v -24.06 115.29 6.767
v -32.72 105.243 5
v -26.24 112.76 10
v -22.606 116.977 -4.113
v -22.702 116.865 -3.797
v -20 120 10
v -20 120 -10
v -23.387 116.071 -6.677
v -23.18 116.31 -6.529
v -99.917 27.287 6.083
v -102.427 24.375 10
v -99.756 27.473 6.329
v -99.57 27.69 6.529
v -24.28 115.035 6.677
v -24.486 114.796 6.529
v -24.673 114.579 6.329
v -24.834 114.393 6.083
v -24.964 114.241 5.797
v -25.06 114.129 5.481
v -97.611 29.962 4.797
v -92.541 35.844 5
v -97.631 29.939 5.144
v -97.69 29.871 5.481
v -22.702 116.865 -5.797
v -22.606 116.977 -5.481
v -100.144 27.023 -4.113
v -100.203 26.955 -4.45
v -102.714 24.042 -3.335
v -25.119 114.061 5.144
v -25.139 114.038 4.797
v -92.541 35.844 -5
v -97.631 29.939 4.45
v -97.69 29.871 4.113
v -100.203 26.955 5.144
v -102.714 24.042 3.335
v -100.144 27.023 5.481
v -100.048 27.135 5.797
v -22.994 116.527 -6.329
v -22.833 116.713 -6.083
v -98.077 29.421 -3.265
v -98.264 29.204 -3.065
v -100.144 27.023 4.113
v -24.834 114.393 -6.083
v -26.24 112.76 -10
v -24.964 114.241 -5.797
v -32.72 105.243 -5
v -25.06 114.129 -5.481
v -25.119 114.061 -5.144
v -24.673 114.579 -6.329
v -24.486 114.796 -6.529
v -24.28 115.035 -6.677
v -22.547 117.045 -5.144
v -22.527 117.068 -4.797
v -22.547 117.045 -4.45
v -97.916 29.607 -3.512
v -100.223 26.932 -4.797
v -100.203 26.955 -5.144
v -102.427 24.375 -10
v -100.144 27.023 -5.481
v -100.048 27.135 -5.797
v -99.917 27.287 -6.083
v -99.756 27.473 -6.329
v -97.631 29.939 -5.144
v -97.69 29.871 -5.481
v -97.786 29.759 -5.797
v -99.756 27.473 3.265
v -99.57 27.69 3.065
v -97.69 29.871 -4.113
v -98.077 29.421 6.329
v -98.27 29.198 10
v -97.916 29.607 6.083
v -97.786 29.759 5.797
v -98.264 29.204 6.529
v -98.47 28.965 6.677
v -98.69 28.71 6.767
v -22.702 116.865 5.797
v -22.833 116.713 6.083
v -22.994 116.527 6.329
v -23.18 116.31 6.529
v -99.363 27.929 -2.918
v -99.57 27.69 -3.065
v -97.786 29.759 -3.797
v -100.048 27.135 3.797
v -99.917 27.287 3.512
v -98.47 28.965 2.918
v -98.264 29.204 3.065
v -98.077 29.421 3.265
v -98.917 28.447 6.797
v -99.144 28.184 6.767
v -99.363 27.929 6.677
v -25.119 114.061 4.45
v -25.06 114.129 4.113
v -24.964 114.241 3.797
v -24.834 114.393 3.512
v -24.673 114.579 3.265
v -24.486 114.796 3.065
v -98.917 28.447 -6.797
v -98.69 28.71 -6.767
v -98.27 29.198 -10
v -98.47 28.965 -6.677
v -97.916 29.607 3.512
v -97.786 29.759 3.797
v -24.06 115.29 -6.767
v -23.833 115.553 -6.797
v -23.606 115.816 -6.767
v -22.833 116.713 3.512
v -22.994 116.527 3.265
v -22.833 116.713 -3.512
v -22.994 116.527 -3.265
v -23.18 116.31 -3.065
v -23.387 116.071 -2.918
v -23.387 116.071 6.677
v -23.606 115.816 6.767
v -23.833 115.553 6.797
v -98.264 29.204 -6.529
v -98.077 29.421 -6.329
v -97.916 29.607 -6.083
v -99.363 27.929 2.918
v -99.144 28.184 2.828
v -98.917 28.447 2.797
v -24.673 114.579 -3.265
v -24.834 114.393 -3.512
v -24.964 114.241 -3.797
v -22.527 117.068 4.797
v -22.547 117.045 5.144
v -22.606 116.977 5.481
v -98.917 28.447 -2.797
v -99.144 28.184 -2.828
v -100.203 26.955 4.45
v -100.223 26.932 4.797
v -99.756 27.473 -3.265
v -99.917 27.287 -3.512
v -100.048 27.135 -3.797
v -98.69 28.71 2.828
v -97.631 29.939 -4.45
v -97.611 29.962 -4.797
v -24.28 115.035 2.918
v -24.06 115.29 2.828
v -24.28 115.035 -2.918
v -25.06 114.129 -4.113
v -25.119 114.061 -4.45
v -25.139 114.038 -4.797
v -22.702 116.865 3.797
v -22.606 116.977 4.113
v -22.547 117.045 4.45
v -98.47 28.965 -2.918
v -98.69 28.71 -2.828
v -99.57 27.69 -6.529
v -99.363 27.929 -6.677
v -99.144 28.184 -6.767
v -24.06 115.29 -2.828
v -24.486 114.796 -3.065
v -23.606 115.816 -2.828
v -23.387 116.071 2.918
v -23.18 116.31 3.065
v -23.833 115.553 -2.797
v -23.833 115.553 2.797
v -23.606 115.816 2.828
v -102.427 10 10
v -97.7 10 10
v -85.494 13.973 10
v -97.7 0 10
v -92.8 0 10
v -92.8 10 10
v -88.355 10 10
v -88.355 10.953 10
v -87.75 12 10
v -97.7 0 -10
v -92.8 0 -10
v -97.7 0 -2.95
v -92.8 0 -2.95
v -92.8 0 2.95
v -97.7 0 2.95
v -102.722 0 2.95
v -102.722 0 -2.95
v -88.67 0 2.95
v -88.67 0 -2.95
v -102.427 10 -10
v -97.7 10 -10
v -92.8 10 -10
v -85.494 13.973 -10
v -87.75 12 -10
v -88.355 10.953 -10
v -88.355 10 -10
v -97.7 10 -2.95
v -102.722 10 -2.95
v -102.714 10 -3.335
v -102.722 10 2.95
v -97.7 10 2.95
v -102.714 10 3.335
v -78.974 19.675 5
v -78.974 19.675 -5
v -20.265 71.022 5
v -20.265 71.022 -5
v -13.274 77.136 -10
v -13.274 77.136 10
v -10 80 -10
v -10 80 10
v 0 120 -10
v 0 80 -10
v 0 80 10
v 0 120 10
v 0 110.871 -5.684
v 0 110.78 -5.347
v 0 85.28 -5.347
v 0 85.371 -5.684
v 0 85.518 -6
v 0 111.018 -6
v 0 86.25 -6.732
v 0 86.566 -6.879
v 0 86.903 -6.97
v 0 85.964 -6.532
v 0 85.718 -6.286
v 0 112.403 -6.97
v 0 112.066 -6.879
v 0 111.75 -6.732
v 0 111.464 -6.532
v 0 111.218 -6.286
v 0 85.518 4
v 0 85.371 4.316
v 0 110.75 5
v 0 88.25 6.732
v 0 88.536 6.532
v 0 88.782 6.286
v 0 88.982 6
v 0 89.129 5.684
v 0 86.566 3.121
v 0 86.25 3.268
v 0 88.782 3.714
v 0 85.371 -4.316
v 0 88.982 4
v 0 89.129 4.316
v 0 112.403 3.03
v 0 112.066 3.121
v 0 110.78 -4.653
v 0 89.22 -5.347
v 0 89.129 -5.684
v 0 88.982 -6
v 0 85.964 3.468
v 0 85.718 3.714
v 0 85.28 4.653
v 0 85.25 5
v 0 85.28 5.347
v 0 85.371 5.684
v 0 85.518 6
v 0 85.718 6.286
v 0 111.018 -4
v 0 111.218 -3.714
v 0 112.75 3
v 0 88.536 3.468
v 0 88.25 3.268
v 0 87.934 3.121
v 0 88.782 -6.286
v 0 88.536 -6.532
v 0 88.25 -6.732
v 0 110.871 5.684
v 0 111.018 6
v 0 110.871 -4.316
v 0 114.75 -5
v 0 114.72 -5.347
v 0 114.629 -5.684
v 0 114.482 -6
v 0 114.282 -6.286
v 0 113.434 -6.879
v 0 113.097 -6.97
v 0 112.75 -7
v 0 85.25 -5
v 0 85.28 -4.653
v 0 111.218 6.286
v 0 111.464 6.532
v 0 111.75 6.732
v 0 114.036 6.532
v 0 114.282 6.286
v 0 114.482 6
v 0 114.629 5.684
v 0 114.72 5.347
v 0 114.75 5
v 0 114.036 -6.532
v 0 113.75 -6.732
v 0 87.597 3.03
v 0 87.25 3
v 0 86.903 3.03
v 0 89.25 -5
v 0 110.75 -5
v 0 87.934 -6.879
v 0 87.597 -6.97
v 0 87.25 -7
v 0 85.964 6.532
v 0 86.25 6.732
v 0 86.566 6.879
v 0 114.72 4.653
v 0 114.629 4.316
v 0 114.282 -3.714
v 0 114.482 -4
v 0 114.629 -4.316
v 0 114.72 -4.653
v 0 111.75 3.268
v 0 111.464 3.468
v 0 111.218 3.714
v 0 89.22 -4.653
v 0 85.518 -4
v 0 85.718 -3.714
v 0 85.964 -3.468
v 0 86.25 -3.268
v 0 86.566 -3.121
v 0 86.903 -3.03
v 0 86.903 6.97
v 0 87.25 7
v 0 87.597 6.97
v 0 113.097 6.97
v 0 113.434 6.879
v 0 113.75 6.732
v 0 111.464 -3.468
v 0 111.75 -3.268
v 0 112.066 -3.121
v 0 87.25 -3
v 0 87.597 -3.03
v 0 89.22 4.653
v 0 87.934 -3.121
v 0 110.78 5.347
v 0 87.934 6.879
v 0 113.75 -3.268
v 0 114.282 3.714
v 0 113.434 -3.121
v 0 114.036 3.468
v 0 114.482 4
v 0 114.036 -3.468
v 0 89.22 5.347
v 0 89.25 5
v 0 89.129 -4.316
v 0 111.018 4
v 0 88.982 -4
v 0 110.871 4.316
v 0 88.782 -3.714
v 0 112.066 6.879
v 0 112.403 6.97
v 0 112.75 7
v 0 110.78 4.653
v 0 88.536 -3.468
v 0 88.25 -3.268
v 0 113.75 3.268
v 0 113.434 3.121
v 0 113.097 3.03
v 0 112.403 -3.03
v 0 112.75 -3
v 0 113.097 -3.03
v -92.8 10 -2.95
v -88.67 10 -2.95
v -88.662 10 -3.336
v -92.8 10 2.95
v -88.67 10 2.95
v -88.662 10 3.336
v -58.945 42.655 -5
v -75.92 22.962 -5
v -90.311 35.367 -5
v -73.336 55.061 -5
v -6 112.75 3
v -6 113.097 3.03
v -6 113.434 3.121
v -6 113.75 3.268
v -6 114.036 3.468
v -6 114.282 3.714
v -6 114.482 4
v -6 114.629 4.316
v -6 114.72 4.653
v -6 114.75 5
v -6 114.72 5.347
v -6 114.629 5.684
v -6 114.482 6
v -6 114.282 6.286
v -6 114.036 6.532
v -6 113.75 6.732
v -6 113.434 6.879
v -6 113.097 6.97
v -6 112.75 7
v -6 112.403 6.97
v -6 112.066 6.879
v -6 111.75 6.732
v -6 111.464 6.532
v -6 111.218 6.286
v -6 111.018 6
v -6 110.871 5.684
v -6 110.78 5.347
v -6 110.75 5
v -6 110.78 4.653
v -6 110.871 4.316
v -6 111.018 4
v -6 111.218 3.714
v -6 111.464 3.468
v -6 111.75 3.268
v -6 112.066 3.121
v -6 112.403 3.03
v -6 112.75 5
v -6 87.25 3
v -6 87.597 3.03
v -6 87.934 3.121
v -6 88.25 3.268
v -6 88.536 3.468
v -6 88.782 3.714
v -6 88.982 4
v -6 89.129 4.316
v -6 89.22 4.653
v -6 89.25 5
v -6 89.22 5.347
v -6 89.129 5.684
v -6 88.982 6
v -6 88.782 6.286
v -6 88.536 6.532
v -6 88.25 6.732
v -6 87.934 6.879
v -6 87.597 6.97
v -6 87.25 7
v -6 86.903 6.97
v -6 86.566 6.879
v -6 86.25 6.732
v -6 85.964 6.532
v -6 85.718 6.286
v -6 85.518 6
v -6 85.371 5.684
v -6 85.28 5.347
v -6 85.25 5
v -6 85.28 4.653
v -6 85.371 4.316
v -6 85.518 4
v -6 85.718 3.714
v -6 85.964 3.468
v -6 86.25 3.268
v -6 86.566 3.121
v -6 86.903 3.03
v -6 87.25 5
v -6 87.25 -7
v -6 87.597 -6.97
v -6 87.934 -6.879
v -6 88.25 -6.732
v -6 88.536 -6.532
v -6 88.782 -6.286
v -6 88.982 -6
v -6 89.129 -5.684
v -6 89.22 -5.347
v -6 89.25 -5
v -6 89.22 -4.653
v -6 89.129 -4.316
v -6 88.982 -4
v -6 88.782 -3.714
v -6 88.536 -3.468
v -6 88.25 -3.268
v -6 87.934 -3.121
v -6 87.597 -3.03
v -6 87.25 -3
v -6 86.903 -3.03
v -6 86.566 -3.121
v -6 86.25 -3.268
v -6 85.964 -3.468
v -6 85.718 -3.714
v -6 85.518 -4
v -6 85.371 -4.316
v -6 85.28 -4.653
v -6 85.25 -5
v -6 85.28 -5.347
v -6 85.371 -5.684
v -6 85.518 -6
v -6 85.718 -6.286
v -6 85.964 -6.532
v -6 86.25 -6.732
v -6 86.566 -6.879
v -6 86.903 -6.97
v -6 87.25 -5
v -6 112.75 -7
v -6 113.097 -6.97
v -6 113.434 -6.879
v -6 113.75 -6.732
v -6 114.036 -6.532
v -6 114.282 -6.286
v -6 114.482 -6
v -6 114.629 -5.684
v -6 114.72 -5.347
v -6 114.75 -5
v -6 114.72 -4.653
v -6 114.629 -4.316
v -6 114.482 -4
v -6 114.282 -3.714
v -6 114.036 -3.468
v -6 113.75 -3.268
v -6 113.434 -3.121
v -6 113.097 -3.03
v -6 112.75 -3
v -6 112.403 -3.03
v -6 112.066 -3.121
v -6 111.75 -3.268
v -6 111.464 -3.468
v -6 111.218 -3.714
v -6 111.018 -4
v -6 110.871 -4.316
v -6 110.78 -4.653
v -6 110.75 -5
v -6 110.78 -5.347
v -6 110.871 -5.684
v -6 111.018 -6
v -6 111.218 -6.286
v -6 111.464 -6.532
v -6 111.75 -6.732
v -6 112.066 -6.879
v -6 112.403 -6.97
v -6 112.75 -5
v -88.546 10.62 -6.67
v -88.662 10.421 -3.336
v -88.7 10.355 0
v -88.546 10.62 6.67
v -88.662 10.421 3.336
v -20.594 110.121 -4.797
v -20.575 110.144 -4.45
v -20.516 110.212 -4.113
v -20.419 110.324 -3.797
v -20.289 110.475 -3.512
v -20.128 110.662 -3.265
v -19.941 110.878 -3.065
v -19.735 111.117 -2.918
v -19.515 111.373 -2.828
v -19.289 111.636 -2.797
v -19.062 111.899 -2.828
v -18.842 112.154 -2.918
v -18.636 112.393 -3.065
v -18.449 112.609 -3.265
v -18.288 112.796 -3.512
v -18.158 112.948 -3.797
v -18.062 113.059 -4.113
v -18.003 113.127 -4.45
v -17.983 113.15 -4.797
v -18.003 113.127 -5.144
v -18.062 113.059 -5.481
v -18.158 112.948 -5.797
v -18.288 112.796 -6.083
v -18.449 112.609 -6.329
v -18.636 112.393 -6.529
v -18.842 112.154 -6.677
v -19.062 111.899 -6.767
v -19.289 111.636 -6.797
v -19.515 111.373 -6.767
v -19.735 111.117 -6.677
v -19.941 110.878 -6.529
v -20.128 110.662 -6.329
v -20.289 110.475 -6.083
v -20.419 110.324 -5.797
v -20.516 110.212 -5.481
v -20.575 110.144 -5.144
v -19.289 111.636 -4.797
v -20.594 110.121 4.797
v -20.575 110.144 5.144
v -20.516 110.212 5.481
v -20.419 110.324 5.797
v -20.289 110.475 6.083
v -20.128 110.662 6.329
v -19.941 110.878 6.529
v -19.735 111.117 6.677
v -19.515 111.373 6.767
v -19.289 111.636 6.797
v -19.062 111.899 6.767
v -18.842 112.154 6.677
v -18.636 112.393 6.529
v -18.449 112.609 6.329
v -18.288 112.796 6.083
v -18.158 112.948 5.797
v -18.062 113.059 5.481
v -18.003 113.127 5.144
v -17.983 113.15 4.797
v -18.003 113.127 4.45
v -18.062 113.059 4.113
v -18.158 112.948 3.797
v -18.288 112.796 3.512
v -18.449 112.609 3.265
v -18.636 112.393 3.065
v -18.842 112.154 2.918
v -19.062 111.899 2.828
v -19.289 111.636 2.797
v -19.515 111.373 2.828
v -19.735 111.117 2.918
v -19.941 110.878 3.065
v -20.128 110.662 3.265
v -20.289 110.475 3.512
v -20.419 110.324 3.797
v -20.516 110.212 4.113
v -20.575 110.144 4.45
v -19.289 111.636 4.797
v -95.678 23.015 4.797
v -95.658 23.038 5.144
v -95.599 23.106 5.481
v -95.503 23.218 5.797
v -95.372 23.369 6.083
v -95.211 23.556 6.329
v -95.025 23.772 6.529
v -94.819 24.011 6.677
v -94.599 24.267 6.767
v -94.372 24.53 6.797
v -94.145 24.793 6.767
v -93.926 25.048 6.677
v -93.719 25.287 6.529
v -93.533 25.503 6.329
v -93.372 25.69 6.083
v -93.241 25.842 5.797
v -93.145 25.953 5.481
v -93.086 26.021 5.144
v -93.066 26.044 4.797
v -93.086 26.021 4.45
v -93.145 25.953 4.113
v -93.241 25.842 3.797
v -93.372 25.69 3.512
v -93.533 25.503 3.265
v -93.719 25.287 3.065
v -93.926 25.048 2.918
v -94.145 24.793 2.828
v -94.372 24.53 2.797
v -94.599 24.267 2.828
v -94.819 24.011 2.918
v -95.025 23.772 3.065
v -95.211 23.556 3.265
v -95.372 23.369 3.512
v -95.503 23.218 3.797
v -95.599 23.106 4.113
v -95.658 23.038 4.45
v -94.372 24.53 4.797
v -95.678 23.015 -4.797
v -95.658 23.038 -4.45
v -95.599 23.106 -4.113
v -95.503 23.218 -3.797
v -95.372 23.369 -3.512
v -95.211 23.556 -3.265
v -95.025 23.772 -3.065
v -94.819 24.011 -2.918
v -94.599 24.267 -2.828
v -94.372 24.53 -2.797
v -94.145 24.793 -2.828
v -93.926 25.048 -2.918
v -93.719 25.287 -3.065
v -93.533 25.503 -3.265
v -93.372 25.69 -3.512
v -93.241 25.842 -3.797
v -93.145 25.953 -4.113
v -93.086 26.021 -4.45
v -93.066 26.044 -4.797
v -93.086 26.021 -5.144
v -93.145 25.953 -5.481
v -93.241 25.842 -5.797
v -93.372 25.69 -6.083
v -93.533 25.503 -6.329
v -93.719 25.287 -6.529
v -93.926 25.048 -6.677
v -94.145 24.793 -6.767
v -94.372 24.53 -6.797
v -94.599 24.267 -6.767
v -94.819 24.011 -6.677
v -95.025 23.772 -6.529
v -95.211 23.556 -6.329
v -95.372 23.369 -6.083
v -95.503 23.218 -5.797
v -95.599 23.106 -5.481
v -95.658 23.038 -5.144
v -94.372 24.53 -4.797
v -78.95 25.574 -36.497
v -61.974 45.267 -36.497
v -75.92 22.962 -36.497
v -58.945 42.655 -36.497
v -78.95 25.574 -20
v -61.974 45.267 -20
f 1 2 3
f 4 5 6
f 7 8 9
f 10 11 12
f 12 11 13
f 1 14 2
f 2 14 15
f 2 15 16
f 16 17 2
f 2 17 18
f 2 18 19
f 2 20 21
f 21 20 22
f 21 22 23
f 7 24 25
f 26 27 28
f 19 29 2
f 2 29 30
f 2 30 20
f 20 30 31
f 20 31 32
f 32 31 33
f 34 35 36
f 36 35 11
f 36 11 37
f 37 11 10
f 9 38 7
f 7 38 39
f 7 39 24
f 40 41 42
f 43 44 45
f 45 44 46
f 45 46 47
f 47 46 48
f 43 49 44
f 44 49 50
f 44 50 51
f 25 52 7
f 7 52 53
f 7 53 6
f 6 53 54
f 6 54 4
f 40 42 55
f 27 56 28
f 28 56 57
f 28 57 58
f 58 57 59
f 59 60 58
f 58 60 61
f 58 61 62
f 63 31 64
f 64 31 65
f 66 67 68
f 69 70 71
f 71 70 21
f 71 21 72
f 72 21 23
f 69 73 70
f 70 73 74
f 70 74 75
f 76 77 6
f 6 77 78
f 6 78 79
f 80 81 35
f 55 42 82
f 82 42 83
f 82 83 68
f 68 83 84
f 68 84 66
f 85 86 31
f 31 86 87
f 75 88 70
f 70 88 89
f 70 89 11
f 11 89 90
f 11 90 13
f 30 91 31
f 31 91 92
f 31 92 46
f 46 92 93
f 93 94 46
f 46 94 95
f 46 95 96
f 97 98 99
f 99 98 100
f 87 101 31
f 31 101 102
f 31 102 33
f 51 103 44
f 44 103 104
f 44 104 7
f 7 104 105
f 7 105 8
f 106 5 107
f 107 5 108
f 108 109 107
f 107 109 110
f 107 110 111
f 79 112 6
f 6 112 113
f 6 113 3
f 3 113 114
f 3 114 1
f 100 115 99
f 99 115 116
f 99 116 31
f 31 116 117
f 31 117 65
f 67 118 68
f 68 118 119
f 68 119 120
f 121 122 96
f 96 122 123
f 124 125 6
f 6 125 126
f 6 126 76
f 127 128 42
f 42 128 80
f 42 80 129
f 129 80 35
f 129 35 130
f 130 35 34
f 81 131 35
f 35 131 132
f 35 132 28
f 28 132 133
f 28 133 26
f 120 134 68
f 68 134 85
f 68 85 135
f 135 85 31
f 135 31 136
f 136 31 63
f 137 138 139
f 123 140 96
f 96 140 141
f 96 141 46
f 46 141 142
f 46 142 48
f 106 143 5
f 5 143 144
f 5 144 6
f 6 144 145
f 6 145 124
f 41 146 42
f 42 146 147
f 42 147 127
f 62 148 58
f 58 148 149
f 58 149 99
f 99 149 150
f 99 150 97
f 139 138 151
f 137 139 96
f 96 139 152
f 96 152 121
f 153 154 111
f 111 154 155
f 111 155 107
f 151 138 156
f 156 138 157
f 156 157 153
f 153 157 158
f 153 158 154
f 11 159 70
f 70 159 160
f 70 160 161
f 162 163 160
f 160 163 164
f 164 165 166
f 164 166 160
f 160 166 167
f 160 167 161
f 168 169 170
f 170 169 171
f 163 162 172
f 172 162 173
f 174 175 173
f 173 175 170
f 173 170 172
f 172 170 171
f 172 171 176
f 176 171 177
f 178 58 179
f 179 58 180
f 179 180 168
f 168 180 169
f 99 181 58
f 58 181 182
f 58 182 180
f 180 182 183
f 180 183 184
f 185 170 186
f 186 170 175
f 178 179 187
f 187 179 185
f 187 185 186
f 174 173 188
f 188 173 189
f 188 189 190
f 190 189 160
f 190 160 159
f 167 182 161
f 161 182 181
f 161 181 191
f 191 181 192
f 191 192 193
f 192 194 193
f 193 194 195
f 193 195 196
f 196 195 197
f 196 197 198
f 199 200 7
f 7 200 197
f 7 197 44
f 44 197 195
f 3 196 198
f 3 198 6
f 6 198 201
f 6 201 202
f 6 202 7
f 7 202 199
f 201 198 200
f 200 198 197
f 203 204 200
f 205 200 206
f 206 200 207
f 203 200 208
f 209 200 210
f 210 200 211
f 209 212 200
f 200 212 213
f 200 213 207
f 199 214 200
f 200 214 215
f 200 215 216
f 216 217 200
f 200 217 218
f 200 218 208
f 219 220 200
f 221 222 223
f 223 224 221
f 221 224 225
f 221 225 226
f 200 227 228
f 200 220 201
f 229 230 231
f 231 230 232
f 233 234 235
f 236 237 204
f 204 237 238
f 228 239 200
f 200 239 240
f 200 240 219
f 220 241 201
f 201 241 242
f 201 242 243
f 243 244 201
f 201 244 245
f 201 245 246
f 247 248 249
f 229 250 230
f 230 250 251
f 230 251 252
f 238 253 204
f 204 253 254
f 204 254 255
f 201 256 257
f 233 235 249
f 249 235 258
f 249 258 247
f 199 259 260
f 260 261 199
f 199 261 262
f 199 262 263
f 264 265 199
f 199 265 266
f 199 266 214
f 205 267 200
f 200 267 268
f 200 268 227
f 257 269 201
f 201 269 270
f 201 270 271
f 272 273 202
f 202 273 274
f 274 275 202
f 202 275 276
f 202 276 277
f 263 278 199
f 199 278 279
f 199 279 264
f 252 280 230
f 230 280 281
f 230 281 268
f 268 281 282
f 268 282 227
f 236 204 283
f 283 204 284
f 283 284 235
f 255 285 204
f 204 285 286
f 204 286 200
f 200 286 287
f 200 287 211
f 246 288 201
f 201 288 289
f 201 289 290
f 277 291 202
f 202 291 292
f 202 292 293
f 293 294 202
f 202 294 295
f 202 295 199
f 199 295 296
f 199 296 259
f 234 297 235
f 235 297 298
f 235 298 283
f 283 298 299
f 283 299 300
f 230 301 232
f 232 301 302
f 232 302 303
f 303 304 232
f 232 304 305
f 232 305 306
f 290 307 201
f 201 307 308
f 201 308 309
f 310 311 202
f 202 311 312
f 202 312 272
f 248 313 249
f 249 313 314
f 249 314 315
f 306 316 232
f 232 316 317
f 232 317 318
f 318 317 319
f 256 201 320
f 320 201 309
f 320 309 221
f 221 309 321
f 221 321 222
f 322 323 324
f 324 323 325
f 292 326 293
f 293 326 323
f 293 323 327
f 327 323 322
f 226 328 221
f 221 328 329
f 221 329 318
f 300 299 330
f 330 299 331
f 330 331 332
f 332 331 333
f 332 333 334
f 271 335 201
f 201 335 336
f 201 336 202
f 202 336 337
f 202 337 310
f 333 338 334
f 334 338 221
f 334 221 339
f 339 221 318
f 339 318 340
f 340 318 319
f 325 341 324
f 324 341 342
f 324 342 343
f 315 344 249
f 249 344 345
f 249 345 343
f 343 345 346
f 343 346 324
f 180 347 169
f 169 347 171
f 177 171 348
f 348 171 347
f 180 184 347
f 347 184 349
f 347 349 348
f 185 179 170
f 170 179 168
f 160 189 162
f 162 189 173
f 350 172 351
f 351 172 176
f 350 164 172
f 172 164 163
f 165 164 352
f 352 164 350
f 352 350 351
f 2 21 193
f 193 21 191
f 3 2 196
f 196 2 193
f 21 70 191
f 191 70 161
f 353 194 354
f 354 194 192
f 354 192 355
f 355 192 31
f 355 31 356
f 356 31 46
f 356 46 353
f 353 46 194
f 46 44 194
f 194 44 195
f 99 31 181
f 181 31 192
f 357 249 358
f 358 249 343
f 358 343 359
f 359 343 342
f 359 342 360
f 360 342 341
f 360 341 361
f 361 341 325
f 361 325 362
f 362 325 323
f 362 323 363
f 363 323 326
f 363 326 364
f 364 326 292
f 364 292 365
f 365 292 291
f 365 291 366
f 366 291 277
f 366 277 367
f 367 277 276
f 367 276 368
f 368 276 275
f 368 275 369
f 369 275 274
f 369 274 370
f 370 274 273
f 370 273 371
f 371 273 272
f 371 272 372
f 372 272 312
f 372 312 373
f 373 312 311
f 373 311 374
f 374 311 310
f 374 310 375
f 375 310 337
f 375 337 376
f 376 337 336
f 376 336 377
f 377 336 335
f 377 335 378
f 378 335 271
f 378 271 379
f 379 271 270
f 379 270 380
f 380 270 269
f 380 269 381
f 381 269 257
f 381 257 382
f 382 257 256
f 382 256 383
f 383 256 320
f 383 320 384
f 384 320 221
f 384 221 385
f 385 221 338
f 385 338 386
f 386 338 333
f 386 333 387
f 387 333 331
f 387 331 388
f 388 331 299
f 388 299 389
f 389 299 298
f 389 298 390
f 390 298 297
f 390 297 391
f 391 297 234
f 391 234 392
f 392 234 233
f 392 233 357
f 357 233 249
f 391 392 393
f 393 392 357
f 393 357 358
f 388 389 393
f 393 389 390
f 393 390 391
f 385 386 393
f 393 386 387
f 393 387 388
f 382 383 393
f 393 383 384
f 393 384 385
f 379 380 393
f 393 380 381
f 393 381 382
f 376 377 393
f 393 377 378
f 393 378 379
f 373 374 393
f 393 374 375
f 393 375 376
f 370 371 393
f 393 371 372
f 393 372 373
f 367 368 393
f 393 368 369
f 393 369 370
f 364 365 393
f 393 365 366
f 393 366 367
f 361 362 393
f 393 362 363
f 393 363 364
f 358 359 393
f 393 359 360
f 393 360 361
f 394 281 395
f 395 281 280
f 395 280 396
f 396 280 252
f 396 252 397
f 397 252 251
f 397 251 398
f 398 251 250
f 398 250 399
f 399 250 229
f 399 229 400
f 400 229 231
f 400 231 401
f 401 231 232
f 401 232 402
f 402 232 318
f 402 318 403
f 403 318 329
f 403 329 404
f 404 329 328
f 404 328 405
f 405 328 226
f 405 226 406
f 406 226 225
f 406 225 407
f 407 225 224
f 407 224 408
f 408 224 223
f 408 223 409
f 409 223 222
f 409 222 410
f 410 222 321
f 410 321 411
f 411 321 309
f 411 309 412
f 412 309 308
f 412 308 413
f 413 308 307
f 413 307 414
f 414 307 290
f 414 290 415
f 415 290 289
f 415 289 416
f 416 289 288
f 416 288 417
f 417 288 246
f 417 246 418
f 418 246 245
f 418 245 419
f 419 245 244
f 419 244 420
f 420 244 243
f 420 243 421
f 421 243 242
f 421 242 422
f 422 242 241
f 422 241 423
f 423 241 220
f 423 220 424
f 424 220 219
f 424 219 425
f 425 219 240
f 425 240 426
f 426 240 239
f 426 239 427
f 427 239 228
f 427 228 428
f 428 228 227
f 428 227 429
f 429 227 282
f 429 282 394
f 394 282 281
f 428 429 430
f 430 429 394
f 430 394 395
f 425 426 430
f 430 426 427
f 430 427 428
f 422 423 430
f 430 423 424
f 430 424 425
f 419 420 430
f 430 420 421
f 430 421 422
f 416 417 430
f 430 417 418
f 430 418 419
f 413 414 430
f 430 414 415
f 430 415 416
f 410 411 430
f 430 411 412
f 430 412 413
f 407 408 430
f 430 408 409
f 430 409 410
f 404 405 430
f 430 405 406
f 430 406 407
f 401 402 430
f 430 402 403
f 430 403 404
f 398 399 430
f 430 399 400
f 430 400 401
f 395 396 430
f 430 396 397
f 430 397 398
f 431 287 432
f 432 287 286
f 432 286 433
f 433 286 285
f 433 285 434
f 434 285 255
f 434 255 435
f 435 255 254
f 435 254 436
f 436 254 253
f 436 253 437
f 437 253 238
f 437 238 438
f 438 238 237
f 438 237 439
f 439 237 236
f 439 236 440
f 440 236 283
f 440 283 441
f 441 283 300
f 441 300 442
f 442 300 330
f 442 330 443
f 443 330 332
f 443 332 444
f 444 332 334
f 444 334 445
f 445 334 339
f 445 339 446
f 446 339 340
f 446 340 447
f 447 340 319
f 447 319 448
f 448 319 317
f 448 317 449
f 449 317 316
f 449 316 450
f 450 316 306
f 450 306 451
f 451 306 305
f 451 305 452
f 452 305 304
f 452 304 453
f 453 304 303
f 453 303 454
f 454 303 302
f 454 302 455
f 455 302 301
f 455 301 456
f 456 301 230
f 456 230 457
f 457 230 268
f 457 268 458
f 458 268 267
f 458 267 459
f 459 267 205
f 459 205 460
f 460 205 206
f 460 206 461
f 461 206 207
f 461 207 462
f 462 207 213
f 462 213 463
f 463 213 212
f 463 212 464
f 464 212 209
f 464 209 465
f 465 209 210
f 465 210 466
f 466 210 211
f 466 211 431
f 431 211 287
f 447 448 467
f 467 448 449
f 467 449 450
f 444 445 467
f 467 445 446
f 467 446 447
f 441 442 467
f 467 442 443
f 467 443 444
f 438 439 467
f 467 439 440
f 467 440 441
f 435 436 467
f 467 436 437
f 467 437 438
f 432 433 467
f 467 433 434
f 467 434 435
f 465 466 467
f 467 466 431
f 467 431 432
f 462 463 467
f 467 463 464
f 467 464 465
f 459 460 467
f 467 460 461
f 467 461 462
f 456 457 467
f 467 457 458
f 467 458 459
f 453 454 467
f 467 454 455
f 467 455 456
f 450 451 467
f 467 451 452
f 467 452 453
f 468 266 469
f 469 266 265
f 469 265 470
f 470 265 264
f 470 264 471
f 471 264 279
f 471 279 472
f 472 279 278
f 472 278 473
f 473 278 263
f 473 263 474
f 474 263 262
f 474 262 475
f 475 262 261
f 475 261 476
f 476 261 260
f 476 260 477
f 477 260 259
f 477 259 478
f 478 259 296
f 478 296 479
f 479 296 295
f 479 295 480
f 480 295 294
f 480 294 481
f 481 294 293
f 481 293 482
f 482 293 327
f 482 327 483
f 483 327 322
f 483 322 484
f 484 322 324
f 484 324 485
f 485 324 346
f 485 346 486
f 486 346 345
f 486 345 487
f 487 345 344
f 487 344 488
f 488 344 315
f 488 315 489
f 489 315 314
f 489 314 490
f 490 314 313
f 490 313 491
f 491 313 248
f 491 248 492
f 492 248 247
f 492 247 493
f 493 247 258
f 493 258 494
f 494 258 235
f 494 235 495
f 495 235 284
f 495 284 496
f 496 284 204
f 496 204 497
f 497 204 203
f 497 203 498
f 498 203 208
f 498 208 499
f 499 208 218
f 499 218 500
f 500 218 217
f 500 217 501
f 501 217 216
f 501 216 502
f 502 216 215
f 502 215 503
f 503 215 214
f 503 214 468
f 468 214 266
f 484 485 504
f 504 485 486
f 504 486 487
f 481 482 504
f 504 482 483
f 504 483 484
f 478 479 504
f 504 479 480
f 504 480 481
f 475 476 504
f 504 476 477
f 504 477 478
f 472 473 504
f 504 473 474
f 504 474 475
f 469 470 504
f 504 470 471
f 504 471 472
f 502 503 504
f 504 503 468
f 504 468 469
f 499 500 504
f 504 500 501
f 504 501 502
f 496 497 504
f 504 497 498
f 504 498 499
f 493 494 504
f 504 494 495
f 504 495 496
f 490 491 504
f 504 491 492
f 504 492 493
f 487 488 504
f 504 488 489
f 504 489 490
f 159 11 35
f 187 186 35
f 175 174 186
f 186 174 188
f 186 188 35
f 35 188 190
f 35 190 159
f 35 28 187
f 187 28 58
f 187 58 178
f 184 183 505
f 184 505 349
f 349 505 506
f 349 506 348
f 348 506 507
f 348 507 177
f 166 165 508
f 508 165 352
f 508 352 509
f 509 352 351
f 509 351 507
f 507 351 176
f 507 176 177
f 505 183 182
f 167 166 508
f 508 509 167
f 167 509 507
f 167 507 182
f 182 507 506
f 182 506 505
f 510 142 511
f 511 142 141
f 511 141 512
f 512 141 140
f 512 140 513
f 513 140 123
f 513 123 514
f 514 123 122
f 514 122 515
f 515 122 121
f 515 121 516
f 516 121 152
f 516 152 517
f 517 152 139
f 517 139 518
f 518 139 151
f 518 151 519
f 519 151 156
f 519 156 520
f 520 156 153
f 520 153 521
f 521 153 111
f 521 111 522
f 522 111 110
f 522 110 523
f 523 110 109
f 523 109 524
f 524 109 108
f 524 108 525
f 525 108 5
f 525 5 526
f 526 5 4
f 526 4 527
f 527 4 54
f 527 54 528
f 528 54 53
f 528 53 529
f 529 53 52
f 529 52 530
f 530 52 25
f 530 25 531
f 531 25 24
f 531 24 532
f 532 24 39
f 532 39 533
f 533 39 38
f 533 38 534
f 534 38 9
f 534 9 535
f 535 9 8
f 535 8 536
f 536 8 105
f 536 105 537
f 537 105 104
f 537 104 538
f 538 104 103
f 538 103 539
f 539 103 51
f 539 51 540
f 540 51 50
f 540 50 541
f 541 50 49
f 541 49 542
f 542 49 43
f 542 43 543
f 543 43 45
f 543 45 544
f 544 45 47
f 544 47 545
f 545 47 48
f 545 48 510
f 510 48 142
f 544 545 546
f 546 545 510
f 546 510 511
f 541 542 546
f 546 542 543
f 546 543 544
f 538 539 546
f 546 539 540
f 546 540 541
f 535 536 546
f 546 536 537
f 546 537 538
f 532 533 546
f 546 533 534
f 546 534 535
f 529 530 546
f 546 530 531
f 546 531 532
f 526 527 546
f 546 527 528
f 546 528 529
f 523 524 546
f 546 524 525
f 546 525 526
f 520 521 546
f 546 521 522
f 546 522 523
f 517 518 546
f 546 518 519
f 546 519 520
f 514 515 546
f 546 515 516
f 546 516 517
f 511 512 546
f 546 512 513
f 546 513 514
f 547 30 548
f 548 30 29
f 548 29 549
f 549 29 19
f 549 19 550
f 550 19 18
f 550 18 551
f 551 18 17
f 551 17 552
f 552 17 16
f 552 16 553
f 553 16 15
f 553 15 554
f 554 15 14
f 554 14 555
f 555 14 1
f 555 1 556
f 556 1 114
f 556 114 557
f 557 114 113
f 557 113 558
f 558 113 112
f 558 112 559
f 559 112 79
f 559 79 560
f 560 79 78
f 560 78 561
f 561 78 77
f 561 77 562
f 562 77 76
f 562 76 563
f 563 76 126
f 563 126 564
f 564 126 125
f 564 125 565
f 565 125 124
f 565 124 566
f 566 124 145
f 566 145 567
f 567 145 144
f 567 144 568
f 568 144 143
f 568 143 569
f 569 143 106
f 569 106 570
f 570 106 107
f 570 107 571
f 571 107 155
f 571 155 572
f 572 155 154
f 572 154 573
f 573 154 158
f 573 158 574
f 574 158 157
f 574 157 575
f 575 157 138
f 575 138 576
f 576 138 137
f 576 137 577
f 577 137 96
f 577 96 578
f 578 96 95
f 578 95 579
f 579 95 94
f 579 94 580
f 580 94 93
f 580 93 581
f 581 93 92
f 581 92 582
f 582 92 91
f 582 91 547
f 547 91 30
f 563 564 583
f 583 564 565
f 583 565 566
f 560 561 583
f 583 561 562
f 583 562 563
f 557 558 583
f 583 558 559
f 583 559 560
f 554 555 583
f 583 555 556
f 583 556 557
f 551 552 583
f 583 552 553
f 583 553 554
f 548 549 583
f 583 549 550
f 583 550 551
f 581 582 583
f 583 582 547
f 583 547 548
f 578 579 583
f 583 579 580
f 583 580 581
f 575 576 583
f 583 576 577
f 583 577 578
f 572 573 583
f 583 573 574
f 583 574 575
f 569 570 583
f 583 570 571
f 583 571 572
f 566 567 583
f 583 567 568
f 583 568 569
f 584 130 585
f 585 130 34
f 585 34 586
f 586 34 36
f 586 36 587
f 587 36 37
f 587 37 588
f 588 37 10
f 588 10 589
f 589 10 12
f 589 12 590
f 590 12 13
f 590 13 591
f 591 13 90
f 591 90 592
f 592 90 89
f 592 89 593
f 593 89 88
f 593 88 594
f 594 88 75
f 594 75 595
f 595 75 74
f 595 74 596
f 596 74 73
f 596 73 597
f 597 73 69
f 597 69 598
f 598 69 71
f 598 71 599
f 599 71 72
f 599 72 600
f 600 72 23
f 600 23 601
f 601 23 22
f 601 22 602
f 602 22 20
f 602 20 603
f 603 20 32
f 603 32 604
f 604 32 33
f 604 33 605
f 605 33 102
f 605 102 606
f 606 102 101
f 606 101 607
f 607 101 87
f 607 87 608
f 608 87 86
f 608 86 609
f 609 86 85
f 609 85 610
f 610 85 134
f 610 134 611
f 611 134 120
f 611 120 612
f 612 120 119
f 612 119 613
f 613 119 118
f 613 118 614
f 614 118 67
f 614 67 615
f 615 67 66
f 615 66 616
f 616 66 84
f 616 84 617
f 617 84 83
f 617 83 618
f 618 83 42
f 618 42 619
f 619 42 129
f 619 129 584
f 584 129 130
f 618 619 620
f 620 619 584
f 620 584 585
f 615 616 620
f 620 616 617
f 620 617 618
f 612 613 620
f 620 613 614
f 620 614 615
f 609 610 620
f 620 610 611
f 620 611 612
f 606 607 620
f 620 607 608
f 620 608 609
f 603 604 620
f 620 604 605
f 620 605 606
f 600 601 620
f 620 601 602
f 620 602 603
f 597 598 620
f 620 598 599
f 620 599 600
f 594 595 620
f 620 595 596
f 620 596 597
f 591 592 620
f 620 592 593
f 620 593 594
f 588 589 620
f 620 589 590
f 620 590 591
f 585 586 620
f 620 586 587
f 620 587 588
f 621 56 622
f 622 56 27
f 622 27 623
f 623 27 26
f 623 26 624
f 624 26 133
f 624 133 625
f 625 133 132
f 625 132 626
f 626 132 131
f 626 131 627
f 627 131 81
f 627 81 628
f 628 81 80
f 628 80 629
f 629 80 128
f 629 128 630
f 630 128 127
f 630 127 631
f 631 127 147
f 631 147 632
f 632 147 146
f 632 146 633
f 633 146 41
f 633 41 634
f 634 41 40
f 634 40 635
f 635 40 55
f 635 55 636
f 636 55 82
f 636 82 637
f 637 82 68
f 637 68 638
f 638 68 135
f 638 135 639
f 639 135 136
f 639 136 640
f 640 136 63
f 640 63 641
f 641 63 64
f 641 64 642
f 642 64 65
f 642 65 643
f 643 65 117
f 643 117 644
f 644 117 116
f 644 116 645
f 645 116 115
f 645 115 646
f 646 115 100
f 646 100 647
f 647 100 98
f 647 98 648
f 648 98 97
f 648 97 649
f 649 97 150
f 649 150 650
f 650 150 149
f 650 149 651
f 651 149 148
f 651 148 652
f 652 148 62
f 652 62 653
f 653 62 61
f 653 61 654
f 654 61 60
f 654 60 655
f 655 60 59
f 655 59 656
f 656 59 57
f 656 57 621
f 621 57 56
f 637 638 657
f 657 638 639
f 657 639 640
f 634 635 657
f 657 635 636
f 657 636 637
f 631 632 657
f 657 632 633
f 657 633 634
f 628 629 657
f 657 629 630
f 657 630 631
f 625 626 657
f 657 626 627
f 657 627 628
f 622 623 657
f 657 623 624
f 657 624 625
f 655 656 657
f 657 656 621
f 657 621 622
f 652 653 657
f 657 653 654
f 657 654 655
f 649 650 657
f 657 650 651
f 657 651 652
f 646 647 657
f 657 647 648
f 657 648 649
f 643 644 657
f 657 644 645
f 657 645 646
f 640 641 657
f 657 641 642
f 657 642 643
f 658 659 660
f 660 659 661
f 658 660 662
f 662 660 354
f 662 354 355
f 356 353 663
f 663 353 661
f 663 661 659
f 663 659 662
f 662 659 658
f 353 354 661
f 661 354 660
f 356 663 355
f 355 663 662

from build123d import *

# Parameters (mm, degrees)
BOSS_EXTRUDE1_DEPTH        = 10
SKETCH2_W                  = 5.05
SKETCH2_H                  = 7.05
CUT_EXTRUDE6_DEPTH         = 10
CUT_EXTRUDE7_DEPTH         = 5
CHAMFER2_SIZE              = 5.196152423
CHAMFER2_SIZE_2            = 9
CHAMFER2_OF_MIRROR4_SIZE   = 5.196152423
CHAMFER2_OF_MIRROR4_SIZE_2 = 9
SKETCH5_R                  = 2
CUT_EXTRUDE5_DEPTH         = 6
CUT_EXTRUDE8_START         = -120
CUT_EXTRUDE8_DEPTH         = 24.374622763
SKETCH8_R                  = 144.95
CUT_EXTRUDE9_DEPTH         = 12
BOSS_EXTRUDE2_DEPTH        = 20
SKETCH12_R                 = 2
CUT_EXTRUDE10_DEPTH        = 6
BOSS_EXTRUDE3_START        = -21
SKETCH13_W                 = 31.497171345
SKETCH13_H                 = 26
BOSS_EXTRUDE3_DEPTH        = 4
CHAMFER3_SIZE              = 15


# Read off the part's stored shape, not the designer's step: Cut-Extrude8
with BuildPart() as part:
    # Sketch1 → Boss-Extrude1 (new, symmetric)
    with BuildSketch(Plane.XY):
        Polygon((0, 120), (0, 80), (-10, 80), (-87.75, 12), (-87.75, 0), (-102.75, 0), (-102.75, 24), (-20, 120), align=None)
    extrude(amount=BOSS_EXTRUDE1_DEPTH, both=True)

    # Sketch2 → Cut-Extrude6 (cut)
    with BuildSketch(Plane.XZ):
        with Locations((-100.225, 6.475)):
            Rectangle(SKETCH2_W, SKETCH2_H)
        with Locations((-90.275, 6.475)):
            Rectangle(SKETCH2_W, SKETCH2_H)
        with Locations((-90.275, -6.475)):
            Rectangle(SKETCH2_W, SKETCH2_H)
        with Locations((-100.225, -6.475)):
            Rectangle(SKETCH2_W, SKETCH2_H)
    extrude(amount=-CUT_EXTRUDE6_DEPTH, mode=Mode.SUBTRACT)

    # Sketch6 → Cut-Extrude7 (cut)
    with BuildSketch(Plane.XY.offset(10)):
        Polygon((-98.494242528, 28.937192959), (-85.75, 13.749196141), (-13, 77.376205788), (-25.986145629, 113.055347669), align=None)
    cut_extrude7 = extrude(amount=-CUT_EXTRUDE7_DEPTH, mode=Mode.SUBTRACT)

    # Chamfer2
    # the kernel refuses this chamfer: 9, 5.196152423 mm, written as the material it adds along each edge
    with BuildSketch(Plane(origin=(-5.036481035, 55.496617251, 5), x_dir=(0.05440243528858507, 0.019800867116638043, 0.9983227437537925), z_dir=(-0.342020143325666, 0.9396926207859094, 0))) as chamfer2_piece_1_section:
        Polygon((CHAMFER2_SIZE * 0.998322743697, -CHAMFER2_SIZE * 0.0578938623994), (-CHAMFER2_SIZE_2 * 0.0578938624027, -CHAMFER2_SIZE_2 * 0.998322743754), (0, 0), align=None)
    chamfer2_piece_1 = extrude(amount=84.536493315, mode=Mode.PRIVATE)
    chamfer2_piece_1 = split(chamfer2_piece_1, bisect_by=Plane(origin=(-21.83844233, 92.842389445, 10), z_dir=(0, 0, -1)), keep=Keep.TOP, mode=Mode.PRIVATE)
    chamfer2_piece_1 = split(chamfer2_piece_1, bisect_by=Plane(origin=(-34.214088998, 103.509939047, 6.650101228), z_dir=(0.7574435982041207, -0.6529006015769894, 0)), keep=Keep.TOP, mode=Mode.PRIVATE)
    chamfer2_piece_1 = split(chamfer2_piece_1, bisect_by=Plane(origin=(-10.343648825, 79.699445401, 6.650101228), z_dir=(-0.6583332390976693, 0.7527266079388791, 0)), keep=Keep.TOP, mode=Mode.PRIVATE)
    add(chamfer2_piece_1)
    with BuildSketch(Plane(origin=(-113.460762542, 46.773596955, 5), x_dir=(-0.04434927158426045, -0.03721345742933334, 0.9983227437537927), z_dir=(0.642787609686533, -0.7660444431189835, 0))) as chamfer2_piece_2_section:
        Polygon((CHAMFER2_SIZE * 0.998322743697, -CHAMFER2_SIZE * 0.0578938623994), (-CHAMFER2_SIZE_2 * 0.0578938624027, -CHAMFER2_SIZE_2 * 0.998322743754), (0, 0), align=None)
    chamfer2_piece_2 = extrude(amount=66.394065339, mode=Mode.PRIVATE)
    chamfer2_piece_2 = split(chamfer2_piece_2, bisect_by=Plane(origin=(-97.520772346, 30.066536009, 6.631431033), z_dir=(0.7574435982041207, -0.6529006015769894, 0)), keep=Keep.TOP, mode=Mode.PRIVATE)
    chamfer2_piece_2 = split(chamfer2_piece_2, bisect_by=Plane(origin=(-83.277010041, 15.912068389, 6.631431033), z_dir=(-0.6583332390976693, 0.7527266079388791, 0)), keep=Keep.TOP, mode=Mode.PRIVATE)
    chamfer2_piece_2 = split(chamfer2_piece_2, bisect_by=Plane(origin=(-89.945880011, 23.537136627, 10), z_dir=(0, 0, -1)), keep=Keep.TOP, mode=Mode.PRIVATE)
    add(chamfer2_piece_2)

    # Mirror4: Cut-Extrude7 across plane
    add(cut_extrude7.mirror(Plane.XY), mode=Mode.SUBTRACT)

    # Chamfer2 of Mirror4
    # the kernel refuses this chamfer: 9, 5.196152423 mm, written as the material it adds along each edge
    with BuildSketch(Plane(origin=(-5.036481035, 55.496617251, -5), x_dir=(0.05440243528858507, 0.019800867116638043, -0.9983227437537925), z_dir=(-0.342020143325666, 0.9396926207859094, 0))) as chamfer2_of_mirror4_piece_1_section:
        Polygon((CHAMFER2_OF_MIRROR4_SIZE * 0.998322743697, CHAMFER2_OF_MIRROR4_SIZE * 0.0578938623994), (-CHAMFER2_OF_MIRROR4_SIZE_2 * 0.0578938624027, CHAMFER2_OF_MIRROR4_SIZE_2 * 0.998322743754), (0, 0), align=None)
    chamfer2_of_mirror4_piece_1 = extrude(amount=84.536493315, mode=Mode.PRIVATE)
    chamfer2_of_mirror4_piece_1 = split(chamfer2_of_mirror4_piece_1, bisect_by=Plane(origin=(-34.214088998, 103.509939047, -6.650101228), z_dir=(0.7574435982040639, -0.6529006015770552, 0)), keep=Keep.TOP, mode=Mode.PRIVATE)
    chamfer2_of_mirror4_piece_1 = split(chamfer2_of_mirror4_piece_1, bisect_by=Plane(origin=(-10.343648825, 79.699445401, -6.650101228), z_dir=(-0.6583332390977968, 0.7527266079387677, 0)), keep=Keep.TOP, mode=Mode.PRIVATE)
    chamfer2_of_mirror4_piece_1 = split(chamfer2_of_mirror4_piece_1, bisect_by=Plane(origin=(-21.83844233, 92.842389445, -10), z_dir=(0, 0, 1)), keep=Keep.TOP, mode=Mode.PRIVATE)
    add(chamfer2_of_mirror4_piece_1)
    with BuildSketch(Plane(origin=(-113.460762542, 46.773596955, -5), x_dir=(0.7659013618145366, 0.6426675502167433, 0.019326765612700778), z_dir=(0.642787609686533, -0.7660444431189835, 0))) as chamfer2_of_mirror4_piece_2_section:
        Polygon((CHAMFER2_OF_MIRROR4_SIZE_2 * 0.999813220622, -CHAMFER2_OF_MIRROR4_SIZE_2 * 0.0193267656127), (-CHAMFER2_OF_MIRROR4_SIZE * 0.0193267656116, -CHAMFER2_OF_MIRROR4_SIZE * 0.999813220566), (0, 0), align=None)
    chamfer2_of_mirror4_piece_2 = extrude(amount=66.394065339, mode=Mode.PRIVATE)
    chamfer2_of_mirror4_piece_2 = split(chamfer2_of_mirror4_piece_2, bisect_by=Plane(origin=(-97.520772346, 30.066536009, -6.631431033), z_dir=(0.7574435982040639, -0.6529006015770552, 0)), keep=Keep.TOP, mode=Mode.PRIVATE)
    chamfer2_of_mirror4_piece_2 = split(chamfer2_of_mirror4_piece_2, bisect_by=Plane(origin=(-83.277010041, 15.912068389, -6.631431033), z_dir=(-0.6583332390977968, 0.7527266079387677, 0)), keep=Keep.TOP, mode=Mode.PRIVATE)
    chamfer2_of_mirror4_piece_2 = split(chamfer2_of_mirror4_piece_2, bisect_by=Plane(origin=(-89.945880011, 23.537136627, -10), z_dir=(0, 0, 1)), keep=Keep.TOP, mode=Mode.PRIVATE)
    add(chamfer2_of_mirror4_piece_2)

    # Sketch5 → Cut-Extrude5 (cut)
    with BuildSketch(Plane(origin=(0, 0, 0), x_dir=(0, 0, -1), z_dir=(1, 0, 0))):
        with Locations((-5, 112.75)):
            Circle(SKETCH5_R)
        with Locations((-5, 87.25)):
            Circle(SKETCH5_R)
        with Locations(Location((5, 87.25, 0), (0, 0, 180))):
            Circle(SKETCH5_R)
        with Locations(Location((5, 112.75, 0), (0, 0, 180))):
            Circle(SKETCH5_R)
    extrude(amount=-CUT_EXTRUDE5_DEPTH, mode=Mode.SUBTRACT)

    # Cut-Extrude8 outline → Cut-Extrude8 (cut)
    with BuildSketch(Plane(origin=(0, 120, 0), x_dir=(1, 0, 0), z_dir=(0, 1, 0)).offset(CUT_EXTRUDE8_START)):
        with BuildLine():
            Line((-102.75, 7.56e-07), (-102.75, -10))
            Line((-102.75, -10), (-102.427082983, -10))
            ThreePointArc((-102.427082983, -10), (-102.669249724, -5.002605828), (-102.75, 7.56e-07))
        make_face()
        with BuildLine():
            Line((-102.427082983, 10), (-102.75, 10))
            Line((-102.75, 10), (-102.75, 7.56e-07))
            ThreePointArc((-102.75, 7.56e-07), (-102.669249699, 5.002606583), (-102.427082983, 10))
        make_face()
    extrude(amount=CUT_EXTRUDE8_DEPTH, mode=Mode.SUBTRACT)

    # Sketch8 → Cut-Extrude9 (cut)
    with BuildSketch(Plane.XZ):
        with Locations((56.25, 0)):
            Circle(SKETCH8_R)
    extrude(amount=-CUT_EXTRUDE9_DEPTH, mode=Mode.SUBTRACT)

    # Sketch10 → Boss-Extrude2 (add)
    with BuildSketch(Plane(origin=(0, 0, -10), x_dir=(-1, 0, 0), z_dir=(0, 0, -1))):
        Polygon((87.75, 12), (88.771540348, 10.230640215), (90.560927794, 10.230640215), (90.560927794, 12), align=None)
    extrude(amount=-BOSS_EXTRUDE2_DEPTH)

    # Sketch12 → Cut-Extrude10 (cut)
    with BuildSketch(Plane(origin=(-70.818661801, 61.044211083, 0), x_dir=(0, 0, 1), z_dir=(-0.7574435982041208, 0.6529006015769894, 0))):
        with Locations(Location((-4.797171345, 71.964164649, 0), (0, 0, 270))):
            Circle(SKETCH12_R)
        with Locations(Location((4.797171345, 71.964164649, 0), (0, 0, 90))):
            Circle(SKETCH12_R)
        with Locations(Location((4.797171345, -43.035835351, 0), (0, 0, 270))):
            Circle(SKETCH12_R)
        with Locations(Location((-4.797171345, -43.035835351, 0), (0, 0, 90))):
            Circle(SKETCH12_R)
    extrude(amount=-CUT_EXTRUDE10_DEPTH, mode=Mode.SUBTRACT)

    # Sketch13 → Boss-Extrude3 (add)
    with BuildSketch(Plane(origin=(-70.818661801, 61.044211083, 0), x_dir=(0, 0, 1), z_dir=(-0.7574435982041208, 0.6529006015769894, 0)).offset(BOSS_EXTRUDE3_START)):
        with Locations((-20.748585673, -19.175835351)):
            Rectangle(SKETCH13_W, SKETCH13_H)
    extrude(amount=BOSS_EXTRUDE3_DEPTH)

    # Chamfer3
    chamfer3_edges = [part.edges().sort_by_distance(p)[0] for p in [
        (-70.462035068, 35.42028713, -5),
    ]]
    chamfer(chamfer3_edges, length=CHAMFER3_SIZE)


solid = part.part
